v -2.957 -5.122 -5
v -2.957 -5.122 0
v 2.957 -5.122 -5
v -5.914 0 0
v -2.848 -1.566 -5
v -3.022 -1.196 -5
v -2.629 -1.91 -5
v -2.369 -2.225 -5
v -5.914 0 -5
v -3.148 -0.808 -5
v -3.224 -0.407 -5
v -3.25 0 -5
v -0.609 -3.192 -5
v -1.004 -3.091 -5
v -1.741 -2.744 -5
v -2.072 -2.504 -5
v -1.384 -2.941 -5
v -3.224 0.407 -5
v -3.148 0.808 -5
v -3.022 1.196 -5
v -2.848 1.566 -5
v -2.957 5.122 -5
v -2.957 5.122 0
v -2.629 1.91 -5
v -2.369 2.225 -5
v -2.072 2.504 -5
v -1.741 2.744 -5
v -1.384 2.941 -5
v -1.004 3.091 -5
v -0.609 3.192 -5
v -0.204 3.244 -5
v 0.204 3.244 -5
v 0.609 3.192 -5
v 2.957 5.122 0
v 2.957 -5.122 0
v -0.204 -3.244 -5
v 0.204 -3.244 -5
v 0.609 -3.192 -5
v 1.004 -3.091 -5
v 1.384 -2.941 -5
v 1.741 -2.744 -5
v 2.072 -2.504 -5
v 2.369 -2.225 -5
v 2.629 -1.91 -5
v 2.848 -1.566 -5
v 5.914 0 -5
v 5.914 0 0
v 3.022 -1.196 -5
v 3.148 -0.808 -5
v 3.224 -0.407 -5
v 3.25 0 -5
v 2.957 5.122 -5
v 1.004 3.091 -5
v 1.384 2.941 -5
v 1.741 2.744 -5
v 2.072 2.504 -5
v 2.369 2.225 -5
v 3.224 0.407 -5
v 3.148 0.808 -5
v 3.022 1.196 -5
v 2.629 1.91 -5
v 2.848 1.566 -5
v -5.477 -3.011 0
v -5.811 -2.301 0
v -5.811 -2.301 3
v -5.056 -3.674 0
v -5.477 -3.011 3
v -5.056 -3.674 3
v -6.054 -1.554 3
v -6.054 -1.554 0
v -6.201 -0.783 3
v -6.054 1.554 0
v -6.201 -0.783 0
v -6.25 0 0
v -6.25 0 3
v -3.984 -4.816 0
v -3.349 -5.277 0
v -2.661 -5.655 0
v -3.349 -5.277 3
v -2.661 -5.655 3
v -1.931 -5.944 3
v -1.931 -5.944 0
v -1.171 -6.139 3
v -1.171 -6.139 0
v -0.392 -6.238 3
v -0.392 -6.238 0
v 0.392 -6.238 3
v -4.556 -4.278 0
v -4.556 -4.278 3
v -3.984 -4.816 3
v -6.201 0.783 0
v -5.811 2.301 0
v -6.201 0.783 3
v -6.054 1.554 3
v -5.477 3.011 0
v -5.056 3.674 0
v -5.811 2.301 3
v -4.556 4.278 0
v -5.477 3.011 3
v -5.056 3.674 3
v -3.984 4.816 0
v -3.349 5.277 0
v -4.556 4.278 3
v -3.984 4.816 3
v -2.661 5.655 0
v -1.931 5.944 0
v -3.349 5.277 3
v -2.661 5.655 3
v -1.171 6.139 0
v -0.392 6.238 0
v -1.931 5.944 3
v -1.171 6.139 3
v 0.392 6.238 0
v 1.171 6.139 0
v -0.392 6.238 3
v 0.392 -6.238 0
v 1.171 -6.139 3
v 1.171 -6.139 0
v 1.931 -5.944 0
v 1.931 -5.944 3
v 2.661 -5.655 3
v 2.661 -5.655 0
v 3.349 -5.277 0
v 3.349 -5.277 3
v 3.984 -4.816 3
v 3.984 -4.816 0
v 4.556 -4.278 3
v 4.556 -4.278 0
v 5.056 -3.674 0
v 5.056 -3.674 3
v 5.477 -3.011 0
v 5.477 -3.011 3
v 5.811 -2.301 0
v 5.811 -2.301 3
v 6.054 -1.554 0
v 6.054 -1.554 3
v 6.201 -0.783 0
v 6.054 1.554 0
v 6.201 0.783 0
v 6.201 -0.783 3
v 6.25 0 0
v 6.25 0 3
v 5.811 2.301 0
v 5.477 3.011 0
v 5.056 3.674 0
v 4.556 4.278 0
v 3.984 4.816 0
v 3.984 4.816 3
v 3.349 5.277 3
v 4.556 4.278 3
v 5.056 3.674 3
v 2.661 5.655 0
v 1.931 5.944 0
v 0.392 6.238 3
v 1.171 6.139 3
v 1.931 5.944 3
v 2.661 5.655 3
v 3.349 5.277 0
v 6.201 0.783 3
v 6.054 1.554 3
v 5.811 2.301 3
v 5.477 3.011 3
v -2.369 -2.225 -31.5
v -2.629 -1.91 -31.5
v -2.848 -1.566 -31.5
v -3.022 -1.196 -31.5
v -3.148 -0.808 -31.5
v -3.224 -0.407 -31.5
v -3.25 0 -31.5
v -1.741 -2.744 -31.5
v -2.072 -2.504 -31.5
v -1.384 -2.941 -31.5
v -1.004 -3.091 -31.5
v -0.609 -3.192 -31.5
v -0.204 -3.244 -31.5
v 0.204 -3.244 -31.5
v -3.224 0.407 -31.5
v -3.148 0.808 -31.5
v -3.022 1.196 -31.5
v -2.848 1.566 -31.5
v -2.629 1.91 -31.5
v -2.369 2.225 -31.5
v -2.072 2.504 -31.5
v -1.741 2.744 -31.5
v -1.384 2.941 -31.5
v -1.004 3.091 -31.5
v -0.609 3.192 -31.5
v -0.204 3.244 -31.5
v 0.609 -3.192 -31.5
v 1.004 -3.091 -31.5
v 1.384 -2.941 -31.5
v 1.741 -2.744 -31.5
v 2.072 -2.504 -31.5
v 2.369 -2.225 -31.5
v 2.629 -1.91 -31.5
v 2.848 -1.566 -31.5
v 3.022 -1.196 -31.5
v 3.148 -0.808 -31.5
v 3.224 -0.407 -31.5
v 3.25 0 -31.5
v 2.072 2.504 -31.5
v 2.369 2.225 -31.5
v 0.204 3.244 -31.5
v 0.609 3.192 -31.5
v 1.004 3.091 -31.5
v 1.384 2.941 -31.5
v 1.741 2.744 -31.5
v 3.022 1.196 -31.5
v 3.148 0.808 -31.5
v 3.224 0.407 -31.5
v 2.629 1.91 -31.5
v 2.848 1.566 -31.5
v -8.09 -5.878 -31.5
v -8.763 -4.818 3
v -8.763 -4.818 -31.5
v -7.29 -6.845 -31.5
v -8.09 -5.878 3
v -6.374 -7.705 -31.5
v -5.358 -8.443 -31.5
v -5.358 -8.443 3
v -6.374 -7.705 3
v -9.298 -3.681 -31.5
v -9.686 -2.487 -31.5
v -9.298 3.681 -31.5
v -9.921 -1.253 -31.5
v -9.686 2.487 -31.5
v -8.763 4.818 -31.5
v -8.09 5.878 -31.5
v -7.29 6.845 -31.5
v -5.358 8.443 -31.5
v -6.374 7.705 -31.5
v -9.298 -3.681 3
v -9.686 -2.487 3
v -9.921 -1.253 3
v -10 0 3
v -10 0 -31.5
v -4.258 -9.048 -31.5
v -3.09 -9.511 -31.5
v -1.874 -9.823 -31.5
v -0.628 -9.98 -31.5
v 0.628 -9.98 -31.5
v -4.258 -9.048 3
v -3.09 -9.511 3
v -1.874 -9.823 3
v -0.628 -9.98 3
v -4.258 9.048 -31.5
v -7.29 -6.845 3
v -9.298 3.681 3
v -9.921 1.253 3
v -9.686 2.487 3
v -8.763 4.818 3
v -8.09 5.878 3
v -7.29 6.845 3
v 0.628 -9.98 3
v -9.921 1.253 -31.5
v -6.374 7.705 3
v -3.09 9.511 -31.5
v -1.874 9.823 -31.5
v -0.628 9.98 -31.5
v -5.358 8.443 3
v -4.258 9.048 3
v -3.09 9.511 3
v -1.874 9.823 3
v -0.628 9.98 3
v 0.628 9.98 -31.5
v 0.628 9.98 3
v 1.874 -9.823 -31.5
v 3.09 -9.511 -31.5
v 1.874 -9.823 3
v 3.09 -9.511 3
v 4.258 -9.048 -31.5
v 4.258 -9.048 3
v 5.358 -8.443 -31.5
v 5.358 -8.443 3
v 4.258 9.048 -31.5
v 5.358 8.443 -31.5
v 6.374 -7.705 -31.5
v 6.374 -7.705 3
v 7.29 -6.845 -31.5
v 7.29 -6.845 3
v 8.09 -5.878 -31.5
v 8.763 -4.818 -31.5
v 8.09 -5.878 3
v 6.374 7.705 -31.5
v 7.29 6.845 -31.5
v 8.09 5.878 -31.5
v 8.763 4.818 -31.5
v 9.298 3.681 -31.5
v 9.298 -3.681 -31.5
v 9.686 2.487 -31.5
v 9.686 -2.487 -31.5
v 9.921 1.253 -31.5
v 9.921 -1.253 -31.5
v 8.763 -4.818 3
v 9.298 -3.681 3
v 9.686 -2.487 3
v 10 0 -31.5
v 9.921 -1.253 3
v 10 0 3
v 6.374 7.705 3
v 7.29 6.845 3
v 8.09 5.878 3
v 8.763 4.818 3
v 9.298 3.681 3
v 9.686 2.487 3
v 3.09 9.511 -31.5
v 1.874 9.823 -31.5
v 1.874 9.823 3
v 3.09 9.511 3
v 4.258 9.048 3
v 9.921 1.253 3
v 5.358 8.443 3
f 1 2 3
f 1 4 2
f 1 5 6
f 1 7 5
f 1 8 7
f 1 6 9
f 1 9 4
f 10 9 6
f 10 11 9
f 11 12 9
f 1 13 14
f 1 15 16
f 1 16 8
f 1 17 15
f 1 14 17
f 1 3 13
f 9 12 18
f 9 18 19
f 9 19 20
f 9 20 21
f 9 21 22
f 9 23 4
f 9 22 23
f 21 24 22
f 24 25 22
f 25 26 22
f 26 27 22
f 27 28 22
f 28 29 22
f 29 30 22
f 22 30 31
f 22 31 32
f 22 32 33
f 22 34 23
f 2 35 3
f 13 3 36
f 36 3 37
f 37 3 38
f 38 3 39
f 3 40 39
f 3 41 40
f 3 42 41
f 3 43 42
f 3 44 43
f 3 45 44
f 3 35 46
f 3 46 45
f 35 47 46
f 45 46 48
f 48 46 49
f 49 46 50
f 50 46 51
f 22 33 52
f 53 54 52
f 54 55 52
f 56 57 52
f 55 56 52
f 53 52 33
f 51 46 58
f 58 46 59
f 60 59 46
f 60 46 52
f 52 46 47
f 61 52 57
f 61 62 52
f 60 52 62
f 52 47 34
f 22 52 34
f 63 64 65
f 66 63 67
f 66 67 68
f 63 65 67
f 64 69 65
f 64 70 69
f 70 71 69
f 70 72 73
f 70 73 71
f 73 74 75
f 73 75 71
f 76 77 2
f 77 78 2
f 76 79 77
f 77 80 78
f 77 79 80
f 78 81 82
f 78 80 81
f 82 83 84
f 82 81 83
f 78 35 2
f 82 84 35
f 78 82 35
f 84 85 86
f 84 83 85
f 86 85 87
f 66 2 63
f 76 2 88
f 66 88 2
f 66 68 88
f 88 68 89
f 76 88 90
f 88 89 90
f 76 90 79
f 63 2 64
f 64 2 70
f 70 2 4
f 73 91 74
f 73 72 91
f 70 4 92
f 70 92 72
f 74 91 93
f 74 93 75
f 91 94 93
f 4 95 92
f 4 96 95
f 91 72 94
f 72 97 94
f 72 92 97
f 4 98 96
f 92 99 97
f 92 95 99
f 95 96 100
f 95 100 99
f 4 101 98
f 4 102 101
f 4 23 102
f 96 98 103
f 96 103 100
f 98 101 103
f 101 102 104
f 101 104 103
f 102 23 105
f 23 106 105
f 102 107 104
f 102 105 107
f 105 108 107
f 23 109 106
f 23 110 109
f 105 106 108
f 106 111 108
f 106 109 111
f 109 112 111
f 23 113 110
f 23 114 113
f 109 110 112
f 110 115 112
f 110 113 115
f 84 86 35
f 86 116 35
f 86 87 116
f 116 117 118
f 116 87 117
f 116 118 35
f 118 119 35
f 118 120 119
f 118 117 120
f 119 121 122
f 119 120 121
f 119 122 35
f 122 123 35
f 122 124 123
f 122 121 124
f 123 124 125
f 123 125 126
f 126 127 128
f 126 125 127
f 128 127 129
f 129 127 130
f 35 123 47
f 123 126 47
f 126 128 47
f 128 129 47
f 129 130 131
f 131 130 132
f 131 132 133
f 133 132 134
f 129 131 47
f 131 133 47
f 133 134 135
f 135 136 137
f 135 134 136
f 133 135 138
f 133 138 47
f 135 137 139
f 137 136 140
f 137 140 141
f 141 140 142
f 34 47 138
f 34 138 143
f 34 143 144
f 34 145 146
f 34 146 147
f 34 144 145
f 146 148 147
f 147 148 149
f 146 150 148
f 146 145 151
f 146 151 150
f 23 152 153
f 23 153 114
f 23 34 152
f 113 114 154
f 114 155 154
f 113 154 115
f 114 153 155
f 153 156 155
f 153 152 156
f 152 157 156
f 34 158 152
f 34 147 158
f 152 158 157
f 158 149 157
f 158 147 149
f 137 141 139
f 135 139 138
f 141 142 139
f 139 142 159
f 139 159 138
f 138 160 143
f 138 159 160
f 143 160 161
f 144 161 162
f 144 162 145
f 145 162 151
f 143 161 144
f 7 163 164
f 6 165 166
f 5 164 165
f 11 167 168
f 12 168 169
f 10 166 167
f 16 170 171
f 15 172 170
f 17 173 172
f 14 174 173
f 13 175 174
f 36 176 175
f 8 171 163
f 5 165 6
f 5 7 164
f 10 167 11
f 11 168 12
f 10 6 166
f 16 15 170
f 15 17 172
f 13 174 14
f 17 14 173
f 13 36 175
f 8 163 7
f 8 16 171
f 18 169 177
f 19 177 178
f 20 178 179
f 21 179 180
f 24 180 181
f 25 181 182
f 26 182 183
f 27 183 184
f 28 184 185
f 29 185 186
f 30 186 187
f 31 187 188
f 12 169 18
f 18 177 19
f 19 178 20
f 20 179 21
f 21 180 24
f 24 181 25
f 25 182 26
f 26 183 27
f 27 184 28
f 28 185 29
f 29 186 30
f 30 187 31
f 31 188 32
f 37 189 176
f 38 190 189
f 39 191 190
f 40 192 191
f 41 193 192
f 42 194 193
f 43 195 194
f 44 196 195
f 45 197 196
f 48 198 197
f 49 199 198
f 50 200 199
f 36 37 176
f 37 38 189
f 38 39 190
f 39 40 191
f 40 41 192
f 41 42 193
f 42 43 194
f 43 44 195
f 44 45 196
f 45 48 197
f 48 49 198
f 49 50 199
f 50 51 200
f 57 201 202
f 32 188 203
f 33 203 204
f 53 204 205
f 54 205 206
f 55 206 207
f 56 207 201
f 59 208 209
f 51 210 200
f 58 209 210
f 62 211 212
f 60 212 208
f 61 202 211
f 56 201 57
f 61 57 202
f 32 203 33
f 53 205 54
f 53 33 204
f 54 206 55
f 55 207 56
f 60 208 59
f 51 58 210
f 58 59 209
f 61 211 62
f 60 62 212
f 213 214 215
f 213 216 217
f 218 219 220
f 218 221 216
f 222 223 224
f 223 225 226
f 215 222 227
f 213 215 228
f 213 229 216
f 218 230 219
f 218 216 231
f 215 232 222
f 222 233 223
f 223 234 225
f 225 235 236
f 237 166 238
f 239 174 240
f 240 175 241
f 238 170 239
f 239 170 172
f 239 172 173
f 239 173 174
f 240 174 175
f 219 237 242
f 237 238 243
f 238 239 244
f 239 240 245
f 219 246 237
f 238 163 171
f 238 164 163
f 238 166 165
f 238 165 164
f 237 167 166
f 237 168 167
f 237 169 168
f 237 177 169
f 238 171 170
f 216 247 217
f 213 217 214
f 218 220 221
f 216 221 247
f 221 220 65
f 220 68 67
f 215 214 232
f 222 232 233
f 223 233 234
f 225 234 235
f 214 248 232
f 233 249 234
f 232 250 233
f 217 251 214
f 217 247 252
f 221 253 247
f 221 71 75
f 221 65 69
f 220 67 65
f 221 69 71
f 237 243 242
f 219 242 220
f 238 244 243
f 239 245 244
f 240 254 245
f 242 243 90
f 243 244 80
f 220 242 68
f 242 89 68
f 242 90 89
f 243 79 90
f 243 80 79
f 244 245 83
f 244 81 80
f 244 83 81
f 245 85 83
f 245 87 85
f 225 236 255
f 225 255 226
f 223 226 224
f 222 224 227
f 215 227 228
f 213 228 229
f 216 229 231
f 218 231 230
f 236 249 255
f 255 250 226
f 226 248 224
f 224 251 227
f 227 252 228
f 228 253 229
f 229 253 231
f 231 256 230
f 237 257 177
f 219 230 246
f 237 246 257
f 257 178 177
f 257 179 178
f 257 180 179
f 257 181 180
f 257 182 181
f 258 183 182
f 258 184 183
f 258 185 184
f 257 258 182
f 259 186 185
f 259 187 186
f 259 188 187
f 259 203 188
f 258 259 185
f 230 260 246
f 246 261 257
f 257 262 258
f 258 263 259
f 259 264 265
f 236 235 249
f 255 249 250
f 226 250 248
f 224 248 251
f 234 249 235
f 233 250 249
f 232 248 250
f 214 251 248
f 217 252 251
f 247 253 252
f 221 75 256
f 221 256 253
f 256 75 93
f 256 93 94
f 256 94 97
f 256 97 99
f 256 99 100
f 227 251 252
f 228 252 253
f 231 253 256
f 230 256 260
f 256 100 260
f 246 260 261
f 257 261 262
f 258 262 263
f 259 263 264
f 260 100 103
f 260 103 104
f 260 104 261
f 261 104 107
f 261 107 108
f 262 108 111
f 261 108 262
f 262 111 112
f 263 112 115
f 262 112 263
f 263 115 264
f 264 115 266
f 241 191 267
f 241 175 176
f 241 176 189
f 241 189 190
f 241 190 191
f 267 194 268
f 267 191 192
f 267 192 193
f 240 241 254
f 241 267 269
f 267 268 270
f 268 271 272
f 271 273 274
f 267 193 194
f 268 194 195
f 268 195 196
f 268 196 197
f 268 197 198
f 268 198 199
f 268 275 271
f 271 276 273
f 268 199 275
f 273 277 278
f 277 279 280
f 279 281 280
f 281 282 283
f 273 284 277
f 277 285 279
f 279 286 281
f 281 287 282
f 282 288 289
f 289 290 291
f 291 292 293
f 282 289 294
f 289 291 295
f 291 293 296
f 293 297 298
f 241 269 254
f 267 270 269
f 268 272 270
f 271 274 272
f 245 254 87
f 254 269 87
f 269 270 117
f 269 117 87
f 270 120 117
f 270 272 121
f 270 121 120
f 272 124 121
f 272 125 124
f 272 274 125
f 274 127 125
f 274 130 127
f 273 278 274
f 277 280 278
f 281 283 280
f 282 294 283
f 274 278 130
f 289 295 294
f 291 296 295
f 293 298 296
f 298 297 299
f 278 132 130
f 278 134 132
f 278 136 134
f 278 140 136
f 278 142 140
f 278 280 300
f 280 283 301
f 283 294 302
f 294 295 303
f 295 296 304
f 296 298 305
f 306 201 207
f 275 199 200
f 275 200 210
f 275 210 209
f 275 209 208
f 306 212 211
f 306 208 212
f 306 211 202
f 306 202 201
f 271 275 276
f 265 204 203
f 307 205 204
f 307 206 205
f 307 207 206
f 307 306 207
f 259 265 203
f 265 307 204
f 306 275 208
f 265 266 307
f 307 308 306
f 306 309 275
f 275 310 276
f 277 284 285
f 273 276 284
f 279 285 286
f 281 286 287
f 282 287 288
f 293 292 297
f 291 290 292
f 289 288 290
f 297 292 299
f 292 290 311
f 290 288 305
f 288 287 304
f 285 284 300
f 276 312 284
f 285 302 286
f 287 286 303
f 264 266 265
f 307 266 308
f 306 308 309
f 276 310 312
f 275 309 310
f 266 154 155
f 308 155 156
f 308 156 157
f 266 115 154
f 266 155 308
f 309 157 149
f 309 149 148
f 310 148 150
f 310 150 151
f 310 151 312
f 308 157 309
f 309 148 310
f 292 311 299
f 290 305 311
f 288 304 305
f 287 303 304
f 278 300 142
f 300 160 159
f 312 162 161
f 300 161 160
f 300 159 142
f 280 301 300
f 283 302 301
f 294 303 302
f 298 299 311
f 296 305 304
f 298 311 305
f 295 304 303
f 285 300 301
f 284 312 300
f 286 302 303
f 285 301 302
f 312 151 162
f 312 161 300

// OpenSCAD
$fn = 50;

difference() {
	union() {
		translate(v = [0, 0, -31.5]) {
			cylinder(h = 34.5, r = 10.0);
		}
	}
	union() {
		translate(v = [0, 0, 0]) {
			rotate(a = [0, 0, 0]) {
				difference() {
					union() {
						translate(v = [0, 0, -5]) {
							linear_extrude(height = 5) {
								polygon(points = [[5.914249999999999, 0.0], [2.957125, 5.1218907443321156], [-2.9571249999999982, 5.1218907443321156], [-5.914249999999999, 7.242867331857232e-16], [-2.9571250000000022, -5.121890744332115], [2.9571249999999956, -5.121890744332118]]);
							}
						}
					}
					union();
				}
			}
		}
		#cylinder(h = 3, r = 6.25);
		#translate(v = [0, 0, -100.0]) {
			cylinder(h = 200, r = 3.25);
		}
	}
}
